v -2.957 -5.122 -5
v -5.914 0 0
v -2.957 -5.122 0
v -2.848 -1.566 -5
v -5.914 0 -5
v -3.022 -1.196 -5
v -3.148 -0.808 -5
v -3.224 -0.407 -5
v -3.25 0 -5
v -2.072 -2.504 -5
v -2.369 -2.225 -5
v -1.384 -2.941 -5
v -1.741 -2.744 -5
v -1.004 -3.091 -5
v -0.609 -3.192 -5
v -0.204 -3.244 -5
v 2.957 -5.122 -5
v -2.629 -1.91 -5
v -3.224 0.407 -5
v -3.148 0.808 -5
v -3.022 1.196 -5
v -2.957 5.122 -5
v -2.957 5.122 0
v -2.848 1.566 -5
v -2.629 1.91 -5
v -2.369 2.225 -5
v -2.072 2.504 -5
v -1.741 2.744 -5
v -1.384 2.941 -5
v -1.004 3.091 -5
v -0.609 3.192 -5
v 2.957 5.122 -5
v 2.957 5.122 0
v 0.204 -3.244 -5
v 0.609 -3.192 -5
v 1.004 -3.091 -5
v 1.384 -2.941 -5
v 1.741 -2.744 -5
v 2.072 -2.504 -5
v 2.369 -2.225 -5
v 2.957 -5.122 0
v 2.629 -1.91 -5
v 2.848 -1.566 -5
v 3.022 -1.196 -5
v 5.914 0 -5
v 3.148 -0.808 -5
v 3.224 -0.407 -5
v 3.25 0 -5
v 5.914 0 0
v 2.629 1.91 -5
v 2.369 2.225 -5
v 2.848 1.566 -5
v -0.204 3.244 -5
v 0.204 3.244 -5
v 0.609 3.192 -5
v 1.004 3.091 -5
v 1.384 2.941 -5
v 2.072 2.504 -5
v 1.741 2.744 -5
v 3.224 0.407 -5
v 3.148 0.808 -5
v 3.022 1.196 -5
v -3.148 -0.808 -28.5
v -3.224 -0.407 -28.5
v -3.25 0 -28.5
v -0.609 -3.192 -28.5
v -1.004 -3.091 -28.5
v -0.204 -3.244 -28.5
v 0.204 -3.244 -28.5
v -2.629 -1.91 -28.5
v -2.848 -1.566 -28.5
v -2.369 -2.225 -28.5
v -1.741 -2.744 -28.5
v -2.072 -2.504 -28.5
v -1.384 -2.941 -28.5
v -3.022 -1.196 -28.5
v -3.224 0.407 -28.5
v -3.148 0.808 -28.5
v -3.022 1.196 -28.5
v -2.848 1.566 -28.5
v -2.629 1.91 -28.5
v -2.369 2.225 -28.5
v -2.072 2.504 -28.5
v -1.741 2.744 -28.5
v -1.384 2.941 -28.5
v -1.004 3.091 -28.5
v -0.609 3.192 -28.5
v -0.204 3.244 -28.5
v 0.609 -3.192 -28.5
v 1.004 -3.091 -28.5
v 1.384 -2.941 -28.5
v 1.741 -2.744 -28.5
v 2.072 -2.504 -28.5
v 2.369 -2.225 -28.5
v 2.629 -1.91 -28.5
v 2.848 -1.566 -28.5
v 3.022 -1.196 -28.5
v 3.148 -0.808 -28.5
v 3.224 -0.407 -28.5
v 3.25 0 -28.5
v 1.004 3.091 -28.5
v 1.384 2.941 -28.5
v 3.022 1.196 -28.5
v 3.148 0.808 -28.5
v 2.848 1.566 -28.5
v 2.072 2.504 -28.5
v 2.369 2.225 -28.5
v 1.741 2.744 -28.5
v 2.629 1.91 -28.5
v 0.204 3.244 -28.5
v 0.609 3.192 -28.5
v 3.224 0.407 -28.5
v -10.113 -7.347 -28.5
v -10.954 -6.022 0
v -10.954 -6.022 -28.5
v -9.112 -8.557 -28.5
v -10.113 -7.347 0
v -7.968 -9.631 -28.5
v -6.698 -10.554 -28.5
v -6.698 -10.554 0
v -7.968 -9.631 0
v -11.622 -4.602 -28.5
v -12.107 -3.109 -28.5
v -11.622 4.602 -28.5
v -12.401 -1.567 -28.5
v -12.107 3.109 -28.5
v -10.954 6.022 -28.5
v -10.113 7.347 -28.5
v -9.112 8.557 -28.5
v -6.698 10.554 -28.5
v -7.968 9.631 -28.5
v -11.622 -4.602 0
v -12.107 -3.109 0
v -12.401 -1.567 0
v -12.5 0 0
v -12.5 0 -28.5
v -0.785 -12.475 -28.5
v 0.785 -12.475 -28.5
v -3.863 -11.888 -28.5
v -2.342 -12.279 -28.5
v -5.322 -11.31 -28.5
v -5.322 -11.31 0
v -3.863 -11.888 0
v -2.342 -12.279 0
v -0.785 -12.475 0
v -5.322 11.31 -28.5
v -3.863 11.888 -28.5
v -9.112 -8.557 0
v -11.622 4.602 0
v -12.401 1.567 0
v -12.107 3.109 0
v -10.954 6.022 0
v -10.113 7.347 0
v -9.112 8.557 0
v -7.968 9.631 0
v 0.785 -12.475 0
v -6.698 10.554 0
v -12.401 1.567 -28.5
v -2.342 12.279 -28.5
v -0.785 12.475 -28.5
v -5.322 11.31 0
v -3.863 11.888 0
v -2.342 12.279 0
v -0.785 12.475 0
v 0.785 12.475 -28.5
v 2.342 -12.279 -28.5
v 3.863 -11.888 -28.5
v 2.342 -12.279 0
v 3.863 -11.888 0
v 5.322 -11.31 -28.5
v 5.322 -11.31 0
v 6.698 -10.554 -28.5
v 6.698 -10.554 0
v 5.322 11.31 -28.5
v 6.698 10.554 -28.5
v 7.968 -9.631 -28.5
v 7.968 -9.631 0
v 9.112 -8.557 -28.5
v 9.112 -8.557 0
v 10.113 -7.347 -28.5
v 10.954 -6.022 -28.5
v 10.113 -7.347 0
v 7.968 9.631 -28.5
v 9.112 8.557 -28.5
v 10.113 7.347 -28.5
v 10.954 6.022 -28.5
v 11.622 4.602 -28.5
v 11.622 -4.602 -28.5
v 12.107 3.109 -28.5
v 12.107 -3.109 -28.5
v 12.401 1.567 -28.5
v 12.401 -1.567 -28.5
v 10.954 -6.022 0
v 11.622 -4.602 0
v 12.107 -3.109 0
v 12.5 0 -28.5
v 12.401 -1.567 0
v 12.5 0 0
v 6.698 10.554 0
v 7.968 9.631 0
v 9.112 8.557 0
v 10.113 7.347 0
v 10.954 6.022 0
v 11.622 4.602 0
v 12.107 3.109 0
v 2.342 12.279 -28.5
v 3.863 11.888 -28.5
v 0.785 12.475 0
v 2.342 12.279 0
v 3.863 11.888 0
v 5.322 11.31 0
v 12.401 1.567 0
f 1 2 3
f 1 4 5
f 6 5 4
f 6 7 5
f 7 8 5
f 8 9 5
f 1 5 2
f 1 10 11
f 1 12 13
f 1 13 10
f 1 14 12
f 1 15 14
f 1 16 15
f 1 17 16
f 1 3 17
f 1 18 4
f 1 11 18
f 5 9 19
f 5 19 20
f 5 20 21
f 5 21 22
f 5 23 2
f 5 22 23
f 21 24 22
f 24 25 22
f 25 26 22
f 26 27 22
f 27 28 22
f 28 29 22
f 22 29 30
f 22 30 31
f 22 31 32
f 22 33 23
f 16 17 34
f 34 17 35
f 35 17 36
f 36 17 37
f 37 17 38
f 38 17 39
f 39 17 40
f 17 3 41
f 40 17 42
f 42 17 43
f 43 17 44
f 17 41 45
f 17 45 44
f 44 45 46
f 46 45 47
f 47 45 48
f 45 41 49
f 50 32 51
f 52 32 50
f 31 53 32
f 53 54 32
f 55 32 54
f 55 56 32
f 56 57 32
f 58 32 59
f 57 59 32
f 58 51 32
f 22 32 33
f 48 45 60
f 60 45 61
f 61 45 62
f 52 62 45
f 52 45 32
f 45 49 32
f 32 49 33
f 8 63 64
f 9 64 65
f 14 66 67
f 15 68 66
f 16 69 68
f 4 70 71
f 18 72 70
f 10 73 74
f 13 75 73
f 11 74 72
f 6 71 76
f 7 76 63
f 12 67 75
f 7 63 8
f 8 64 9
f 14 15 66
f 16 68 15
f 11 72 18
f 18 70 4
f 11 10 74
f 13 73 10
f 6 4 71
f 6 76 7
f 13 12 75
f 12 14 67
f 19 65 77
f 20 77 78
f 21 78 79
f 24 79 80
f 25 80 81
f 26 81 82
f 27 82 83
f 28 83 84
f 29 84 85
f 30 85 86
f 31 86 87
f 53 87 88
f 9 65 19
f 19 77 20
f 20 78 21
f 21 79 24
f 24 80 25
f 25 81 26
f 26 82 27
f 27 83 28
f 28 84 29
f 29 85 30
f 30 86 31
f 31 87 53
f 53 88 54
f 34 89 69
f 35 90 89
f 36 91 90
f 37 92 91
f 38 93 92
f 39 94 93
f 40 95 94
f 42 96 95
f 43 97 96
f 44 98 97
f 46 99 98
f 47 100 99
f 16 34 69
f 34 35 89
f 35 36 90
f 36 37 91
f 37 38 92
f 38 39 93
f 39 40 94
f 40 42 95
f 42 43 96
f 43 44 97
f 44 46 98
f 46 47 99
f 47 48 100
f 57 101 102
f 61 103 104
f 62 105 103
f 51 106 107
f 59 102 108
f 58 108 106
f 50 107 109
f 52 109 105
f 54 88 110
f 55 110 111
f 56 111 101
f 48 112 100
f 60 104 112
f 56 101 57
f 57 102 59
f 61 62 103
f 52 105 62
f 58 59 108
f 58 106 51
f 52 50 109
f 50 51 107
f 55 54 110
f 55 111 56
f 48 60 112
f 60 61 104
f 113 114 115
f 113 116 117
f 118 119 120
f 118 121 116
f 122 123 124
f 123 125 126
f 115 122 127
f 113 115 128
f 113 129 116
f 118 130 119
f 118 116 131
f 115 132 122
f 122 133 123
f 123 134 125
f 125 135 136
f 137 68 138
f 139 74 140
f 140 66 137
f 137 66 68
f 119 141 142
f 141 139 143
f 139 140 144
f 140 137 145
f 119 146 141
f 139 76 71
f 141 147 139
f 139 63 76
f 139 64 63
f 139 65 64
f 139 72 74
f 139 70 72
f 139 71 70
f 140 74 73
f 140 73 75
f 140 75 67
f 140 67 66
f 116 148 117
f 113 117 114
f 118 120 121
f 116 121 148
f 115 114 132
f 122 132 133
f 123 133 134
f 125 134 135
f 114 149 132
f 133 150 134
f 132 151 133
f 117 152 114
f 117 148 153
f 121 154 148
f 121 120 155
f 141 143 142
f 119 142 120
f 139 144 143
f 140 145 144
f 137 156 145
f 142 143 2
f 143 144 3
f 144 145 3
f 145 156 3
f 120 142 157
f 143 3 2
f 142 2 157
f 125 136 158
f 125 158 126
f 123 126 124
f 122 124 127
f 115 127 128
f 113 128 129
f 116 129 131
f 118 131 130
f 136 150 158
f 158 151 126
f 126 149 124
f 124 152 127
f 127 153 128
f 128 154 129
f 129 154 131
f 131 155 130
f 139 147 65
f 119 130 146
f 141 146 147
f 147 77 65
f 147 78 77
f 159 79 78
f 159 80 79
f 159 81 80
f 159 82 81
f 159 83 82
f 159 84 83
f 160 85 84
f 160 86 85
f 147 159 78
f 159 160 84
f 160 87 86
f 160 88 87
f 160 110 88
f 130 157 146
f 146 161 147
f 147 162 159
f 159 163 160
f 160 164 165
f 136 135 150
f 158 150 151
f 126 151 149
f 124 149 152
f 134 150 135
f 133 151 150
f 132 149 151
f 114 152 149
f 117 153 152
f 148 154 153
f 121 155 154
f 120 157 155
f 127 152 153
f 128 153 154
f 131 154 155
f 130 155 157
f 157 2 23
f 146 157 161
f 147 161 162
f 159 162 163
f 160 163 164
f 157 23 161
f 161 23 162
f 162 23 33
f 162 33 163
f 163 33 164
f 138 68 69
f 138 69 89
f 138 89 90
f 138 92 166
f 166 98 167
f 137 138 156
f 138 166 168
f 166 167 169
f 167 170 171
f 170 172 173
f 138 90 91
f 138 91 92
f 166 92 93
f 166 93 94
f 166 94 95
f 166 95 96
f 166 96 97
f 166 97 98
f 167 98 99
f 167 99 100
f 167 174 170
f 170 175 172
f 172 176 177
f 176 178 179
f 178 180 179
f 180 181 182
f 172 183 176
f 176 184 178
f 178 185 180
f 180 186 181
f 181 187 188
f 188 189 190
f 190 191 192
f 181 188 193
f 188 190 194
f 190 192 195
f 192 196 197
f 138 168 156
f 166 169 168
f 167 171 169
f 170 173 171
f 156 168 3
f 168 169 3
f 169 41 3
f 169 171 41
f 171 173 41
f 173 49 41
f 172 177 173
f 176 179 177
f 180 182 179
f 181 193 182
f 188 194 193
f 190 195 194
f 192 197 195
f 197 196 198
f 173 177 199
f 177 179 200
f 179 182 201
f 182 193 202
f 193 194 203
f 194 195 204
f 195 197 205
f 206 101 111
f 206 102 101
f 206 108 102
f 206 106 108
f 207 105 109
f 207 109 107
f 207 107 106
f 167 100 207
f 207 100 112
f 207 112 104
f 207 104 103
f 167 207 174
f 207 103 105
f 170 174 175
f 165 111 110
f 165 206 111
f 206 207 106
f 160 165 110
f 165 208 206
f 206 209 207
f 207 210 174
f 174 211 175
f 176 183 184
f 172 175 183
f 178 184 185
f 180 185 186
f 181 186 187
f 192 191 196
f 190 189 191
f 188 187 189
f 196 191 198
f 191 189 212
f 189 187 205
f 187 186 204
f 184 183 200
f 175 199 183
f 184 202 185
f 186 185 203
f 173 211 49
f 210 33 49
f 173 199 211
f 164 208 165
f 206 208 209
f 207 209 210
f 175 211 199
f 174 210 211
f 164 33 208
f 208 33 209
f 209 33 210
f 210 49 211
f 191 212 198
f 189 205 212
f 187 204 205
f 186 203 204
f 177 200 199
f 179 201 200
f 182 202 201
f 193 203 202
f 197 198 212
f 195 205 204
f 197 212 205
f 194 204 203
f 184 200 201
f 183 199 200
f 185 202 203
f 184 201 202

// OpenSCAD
$fn = 50;


difference() {
	union() {
		translate(v = [0, 0, -28.5000000000]) {
			cylinder(h = 28.5000000000, r = 12.5000000000);
		}
	}
	union() {
		translate(v = [0, 0, 0]) {
			rotate(a = [0, 0, 0]) {
				difference() {
					union() {
						translate(v = [0, 0, -5]) {
							linear_extrude(height = 5) {
								polygon(points = [[5.9142500000, 0.0000000000], [2.9571250000, 5.1218907443], [-2.9571250000, 5.1218907443], [-5.9142500000, 0.0000000000], [-2.9571250000, -5.1218907443], [2.9571250000, -5.1218907443]]);
							}
						}
					}
					union();
				}
			}
		}
		#translate(v = [0, 0, -100.0000000000]) {
			cylinder(h = 200, r = 3.2500000000);
		}
	}
}
